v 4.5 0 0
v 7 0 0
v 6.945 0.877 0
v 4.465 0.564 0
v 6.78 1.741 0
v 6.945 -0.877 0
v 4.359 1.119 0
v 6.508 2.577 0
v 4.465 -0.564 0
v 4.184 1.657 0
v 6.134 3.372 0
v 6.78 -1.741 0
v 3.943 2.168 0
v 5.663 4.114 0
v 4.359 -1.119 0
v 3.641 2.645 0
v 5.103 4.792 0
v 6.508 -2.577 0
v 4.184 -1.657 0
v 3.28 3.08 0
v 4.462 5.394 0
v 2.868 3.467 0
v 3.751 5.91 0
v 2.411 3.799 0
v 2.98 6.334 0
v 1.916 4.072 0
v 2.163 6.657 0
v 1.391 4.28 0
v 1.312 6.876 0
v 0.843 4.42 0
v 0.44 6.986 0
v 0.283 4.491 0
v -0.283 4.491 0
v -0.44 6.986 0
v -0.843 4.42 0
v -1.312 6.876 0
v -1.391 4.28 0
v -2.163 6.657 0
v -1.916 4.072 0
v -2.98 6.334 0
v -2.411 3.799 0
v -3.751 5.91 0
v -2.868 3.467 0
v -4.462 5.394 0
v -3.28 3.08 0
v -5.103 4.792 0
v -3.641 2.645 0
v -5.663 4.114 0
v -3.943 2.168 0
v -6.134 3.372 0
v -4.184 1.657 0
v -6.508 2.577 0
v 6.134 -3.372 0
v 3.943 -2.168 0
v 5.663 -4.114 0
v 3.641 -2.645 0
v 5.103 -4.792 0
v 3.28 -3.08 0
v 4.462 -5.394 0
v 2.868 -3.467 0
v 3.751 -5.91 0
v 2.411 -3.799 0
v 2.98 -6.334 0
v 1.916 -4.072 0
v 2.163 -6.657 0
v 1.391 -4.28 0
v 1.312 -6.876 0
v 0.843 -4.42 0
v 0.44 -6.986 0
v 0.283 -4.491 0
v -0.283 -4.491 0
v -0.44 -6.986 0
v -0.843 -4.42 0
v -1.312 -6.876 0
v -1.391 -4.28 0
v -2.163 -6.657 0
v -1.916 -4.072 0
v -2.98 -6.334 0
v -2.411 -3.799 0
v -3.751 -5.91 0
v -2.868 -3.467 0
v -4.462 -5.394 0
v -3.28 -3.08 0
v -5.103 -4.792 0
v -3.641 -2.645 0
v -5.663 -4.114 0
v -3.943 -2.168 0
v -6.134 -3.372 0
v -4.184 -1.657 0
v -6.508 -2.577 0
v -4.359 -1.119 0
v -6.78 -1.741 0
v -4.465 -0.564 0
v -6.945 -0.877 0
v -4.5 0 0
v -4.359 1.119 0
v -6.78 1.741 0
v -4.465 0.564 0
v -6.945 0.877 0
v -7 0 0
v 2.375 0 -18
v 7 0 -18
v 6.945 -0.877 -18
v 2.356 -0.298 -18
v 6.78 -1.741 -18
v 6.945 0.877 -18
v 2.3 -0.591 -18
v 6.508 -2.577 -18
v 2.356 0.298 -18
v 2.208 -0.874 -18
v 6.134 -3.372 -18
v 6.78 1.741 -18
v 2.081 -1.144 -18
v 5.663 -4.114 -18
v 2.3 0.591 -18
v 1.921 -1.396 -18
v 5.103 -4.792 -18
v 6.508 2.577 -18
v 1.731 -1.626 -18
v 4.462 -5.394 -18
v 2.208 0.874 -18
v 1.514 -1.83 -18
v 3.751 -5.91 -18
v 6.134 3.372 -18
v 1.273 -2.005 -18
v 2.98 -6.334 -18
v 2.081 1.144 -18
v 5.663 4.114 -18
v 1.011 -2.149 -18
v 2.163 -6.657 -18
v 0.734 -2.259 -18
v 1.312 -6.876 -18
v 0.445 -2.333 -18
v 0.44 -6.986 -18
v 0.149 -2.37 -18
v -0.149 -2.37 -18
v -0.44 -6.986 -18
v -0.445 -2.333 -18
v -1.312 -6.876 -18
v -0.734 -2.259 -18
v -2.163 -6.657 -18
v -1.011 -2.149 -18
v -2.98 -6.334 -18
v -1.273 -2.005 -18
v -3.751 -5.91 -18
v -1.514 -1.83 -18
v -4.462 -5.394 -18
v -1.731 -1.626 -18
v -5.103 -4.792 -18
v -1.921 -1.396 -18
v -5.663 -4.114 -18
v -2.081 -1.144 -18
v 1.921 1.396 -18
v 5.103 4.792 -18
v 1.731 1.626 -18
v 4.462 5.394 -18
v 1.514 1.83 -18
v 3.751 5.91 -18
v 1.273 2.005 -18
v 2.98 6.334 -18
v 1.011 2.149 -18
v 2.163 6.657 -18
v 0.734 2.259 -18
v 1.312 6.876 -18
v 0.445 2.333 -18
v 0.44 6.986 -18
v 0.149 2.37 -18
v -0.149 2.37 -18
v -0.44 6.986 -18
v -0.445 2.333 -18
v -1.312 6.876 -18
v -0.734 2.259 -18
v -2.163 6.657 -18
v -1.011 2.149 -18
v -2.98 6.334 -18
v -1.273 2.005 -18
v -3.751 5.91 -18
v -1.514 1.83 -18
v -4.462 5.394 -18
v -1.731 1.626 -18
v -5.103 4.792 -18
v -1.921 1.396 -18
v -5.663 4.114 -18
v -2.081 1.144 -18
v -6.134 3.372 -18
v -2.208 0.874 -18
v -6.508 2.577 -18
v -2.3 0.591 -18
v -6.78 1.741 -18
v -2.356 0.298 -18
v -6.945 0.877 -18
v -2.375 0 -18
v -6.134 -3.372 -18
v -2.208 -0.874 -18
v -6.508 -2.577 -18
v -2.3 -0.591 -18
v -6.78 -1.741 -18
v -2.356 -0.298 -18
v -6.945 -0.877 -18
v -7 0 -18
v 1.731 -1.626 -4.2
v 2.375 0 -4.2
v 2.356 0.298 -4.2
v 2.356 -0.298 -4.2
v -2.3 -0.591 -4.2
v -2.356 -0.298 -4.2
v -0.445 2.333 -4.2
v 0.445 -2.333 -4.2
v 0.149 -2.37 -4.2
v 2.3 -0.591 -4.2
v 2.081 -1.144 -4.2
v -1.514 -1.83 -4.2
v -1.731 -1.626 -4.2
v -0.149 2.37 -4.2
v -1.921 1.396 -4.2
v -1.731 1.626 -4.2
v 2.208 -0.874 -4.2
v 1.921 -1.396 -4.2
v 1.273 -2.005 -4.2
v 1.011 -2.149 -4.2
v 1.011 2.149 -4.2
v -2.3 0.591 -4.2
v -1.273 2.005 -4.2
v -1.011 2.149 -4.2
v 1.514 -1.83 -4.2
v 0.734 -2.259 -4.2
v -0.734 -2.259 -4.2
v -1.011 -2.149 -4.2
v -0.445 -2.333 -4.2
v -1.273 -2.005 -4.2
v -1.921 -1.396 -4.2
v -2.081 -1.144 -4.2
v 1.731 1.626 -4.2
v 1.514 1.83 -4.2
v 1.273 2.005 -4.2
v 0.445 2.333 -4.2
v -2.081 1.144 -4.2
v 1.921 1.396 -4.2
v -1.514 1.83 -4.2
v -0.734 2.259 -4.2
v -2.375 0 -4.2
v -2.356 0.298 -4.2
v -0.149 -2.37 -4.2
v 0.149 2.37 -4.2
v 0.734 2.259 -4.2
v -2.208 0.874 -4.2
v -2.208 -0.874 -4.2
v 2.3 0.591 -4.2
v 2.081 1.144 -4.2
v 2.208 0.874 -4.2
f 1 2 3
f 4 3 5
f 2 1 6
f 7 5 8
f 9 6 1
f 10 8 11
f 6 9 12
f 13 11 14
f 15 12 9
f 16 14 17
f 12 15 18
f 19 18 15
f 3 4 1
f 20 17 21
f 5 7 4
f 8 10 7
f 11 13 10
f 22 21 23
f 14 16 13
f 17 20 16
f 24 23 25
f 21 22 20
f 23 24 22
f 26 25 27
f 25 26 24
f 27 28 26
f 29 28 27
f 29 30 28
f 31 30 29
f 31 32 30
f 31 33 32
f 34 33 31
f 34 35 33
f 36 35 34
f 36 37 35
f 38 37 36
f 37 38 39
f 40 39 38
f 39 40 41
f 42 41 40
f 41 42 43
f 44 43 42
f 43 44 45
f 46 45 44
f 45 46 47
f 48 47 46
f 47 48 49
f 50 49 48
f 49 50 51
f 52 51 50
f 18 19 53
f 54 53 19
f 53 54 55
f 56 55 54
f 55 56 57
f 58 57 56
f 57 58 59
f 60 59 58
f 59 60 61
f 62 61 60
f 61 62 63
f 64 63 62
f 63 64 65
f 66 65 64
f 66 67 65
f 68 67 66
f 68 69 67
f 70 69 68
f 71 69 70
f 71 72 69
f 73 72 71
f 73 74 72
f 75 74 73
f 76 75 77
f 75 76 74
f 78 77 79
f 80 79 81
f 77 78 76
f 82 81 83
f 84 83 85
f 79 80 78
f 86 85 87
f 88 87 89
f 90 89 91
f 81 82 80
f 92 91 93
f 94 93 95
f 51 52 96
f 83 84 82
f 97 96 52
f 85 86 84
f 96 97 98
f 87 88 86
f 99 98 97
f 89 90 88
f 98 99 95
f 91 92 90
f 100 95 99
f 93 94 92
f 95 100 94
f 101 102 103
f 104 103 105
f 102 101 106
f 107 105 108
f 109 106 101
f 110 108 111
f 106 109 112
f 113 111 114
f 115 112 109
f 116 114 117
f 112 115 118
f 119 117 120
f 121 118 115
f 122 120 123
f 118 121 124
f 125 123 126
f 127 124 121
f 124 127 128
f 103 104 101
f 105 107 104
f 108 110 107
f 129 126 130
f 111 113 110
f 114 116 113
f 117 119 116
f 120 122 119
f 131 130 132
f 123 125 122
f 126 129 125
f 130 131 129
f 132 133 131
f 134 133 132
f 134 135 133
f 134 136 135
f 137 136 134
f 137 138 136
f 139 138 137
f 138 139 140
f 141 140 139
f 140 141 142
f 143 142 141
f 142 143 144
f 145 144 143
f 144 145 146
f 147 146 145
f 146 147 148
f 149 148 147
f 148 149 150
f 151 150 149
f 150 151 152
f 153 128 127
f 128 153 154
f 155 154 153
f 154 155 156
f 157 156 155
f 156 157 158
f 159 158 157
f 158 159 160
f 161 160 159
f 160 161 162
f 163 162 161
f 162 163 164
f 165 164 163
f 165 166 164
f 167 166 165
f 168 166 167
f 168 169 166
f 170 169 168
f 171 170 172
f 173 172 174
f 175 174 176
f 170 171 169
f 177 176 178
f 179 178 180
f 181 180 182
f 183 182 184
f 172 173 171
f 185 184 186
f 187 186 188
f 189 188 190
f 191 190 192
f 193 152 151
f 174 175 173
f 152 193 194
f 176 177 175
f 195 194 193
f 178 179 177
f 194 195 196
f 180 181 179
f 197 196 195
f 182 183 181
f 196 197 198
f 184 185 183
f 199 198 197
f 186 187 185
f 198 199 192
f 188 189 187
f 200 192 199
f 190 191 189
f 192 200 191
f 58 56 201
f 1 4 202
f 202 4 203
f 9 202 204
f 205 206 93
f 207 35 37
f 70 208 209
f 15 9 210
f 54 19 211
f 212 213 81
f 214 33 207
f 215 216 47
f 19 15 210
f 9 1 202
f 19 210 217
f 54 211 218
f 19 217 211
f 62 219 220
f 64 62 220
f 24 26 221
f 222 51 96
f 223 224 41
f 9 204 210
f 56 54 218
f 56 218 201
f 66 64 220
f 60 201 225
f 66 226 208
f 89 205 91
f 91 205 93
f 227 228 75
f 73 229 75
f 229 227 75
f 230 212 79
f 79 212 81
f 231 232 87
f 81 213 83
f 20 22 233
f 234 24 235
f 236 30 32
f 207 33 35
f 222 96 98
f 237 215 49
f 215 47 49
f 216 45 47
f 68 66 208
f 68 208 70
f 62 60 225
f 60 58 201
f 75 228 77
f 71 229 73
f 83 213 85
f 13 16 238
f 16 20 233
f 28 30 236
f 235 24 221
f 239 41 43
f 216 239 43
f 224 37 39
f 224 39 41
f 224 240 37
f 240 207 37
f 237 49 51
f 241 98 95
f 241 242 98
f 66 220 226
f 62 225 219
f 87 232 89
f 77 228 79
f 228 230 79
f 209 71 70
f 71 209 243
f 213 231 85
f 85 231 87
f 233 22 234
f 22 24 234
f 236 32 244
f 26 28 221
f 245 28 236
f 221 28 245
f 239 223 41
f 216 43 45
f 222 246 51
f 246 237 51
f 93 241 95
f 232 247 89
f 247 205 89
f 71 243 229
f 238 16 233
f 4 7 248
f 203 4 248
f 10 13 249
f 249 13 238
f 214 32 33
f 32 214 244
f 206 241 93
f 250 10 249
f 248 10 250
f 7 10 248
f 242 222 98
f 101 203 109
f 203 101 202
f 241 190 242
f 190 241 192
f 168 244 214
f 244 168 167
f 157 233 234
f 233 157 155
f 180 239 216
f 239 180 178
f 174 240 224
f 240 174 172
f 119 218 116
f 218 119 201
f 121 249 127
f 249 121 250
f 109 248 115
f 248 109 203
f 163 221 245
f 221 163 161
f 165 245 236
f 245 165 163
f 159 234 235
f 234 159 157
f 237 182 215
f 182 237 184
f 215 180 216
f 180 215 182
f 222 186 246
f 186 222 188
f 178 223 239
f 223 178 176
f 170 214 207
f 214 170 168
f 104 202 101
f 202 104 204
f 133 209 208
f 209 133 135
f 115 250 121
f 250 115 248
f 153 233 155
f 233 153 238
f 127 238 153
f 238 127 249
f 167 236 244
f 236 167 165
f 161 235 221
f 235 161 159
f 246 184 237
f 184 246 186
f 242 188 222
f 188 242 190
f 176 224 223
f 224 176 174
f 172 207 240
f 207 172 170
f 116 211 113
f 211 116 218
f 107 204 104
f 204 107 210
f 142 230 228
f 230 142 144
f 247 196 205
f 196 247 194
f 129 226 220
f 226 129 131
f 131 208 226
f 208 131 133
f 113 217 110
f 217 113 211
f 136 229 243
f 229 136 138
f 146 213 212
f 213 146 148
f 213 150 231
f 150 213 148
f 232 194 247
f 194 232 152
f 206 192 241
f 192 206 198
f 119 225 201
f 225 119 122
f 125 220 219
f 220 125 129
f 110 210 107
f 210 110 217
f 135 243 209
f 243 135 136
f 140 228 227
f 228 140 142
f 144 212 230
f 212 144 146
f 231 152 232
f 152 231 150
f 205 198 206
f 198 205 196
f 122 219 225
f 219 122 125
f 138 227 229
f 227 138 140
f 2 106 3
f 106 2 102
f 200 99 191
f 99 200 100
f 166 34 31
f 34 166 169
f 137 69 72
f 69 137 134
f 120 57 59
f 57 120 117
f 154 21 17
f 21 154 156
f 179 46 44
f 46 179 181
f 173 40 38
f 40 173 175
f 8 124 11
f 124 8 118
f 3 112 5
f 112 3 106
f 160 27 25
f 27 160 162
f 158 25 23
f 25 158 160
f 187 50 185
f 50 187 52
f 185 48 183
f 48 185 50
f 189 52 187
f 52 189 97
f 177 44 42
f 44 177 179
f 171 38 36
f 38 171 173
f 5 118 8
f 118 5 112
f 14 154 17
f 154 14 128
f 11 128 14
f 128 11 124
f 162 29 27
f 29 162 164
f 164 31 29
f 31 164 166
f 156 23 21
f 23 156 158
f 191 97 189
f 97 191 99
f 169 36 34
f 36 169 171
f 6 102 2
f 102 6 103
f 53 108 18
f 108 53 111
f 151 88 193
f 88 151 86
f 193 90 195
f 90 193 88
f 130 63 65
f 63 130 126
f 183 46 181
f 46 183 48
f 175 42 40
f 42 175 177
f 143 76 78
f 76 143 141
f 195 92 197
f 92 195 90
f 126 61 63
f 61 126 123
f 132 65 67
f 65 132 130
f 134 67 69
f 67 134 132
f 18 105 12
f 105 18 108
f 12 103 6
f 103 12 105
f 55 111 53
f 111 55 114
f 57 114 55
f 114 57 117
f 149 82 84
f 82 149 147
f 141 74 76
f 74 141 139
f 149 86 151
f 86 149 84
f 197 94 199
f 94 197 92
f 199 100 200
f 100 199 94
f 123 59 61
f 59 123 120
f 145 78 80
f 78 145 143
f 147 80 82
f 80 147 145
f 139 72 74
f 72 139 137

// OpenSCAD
$fn = 50;


difference() {
	union() {
		translate(v = [0, 0, -18.0000000000]) {
			cylinder(h = 18, r = 7.0000000000);
		}
		cylinder(h = 0, r = 10.0000000000);
	}
	union() {
		translate(v = [0, 0, 0]) {
			rotate(a = [0, 0, 0]) {
				difference() {
					union() {
						#translate(v = [0, 0, -18.0000000000]) {
							cylinder(h = 18, r = 2.2500000000);
						}
						#translate(v = [0, 0, -4.2000000000]) {
							cylinder(h = 4.2000000000, r1 = 2.3750000000, r2 = 4.5000000000);
						}
						#translate(v = [0, 0, -18.0000000000]) {
							cylinder(h = 18, r = 2.3750000000);
						}
						#translate(v = [0, 0, -18.0000000000]) {
							cylinder(h = 18, r = 2.2500000000);
						}
					}
					union();
				}
			}
		}
	}
}
